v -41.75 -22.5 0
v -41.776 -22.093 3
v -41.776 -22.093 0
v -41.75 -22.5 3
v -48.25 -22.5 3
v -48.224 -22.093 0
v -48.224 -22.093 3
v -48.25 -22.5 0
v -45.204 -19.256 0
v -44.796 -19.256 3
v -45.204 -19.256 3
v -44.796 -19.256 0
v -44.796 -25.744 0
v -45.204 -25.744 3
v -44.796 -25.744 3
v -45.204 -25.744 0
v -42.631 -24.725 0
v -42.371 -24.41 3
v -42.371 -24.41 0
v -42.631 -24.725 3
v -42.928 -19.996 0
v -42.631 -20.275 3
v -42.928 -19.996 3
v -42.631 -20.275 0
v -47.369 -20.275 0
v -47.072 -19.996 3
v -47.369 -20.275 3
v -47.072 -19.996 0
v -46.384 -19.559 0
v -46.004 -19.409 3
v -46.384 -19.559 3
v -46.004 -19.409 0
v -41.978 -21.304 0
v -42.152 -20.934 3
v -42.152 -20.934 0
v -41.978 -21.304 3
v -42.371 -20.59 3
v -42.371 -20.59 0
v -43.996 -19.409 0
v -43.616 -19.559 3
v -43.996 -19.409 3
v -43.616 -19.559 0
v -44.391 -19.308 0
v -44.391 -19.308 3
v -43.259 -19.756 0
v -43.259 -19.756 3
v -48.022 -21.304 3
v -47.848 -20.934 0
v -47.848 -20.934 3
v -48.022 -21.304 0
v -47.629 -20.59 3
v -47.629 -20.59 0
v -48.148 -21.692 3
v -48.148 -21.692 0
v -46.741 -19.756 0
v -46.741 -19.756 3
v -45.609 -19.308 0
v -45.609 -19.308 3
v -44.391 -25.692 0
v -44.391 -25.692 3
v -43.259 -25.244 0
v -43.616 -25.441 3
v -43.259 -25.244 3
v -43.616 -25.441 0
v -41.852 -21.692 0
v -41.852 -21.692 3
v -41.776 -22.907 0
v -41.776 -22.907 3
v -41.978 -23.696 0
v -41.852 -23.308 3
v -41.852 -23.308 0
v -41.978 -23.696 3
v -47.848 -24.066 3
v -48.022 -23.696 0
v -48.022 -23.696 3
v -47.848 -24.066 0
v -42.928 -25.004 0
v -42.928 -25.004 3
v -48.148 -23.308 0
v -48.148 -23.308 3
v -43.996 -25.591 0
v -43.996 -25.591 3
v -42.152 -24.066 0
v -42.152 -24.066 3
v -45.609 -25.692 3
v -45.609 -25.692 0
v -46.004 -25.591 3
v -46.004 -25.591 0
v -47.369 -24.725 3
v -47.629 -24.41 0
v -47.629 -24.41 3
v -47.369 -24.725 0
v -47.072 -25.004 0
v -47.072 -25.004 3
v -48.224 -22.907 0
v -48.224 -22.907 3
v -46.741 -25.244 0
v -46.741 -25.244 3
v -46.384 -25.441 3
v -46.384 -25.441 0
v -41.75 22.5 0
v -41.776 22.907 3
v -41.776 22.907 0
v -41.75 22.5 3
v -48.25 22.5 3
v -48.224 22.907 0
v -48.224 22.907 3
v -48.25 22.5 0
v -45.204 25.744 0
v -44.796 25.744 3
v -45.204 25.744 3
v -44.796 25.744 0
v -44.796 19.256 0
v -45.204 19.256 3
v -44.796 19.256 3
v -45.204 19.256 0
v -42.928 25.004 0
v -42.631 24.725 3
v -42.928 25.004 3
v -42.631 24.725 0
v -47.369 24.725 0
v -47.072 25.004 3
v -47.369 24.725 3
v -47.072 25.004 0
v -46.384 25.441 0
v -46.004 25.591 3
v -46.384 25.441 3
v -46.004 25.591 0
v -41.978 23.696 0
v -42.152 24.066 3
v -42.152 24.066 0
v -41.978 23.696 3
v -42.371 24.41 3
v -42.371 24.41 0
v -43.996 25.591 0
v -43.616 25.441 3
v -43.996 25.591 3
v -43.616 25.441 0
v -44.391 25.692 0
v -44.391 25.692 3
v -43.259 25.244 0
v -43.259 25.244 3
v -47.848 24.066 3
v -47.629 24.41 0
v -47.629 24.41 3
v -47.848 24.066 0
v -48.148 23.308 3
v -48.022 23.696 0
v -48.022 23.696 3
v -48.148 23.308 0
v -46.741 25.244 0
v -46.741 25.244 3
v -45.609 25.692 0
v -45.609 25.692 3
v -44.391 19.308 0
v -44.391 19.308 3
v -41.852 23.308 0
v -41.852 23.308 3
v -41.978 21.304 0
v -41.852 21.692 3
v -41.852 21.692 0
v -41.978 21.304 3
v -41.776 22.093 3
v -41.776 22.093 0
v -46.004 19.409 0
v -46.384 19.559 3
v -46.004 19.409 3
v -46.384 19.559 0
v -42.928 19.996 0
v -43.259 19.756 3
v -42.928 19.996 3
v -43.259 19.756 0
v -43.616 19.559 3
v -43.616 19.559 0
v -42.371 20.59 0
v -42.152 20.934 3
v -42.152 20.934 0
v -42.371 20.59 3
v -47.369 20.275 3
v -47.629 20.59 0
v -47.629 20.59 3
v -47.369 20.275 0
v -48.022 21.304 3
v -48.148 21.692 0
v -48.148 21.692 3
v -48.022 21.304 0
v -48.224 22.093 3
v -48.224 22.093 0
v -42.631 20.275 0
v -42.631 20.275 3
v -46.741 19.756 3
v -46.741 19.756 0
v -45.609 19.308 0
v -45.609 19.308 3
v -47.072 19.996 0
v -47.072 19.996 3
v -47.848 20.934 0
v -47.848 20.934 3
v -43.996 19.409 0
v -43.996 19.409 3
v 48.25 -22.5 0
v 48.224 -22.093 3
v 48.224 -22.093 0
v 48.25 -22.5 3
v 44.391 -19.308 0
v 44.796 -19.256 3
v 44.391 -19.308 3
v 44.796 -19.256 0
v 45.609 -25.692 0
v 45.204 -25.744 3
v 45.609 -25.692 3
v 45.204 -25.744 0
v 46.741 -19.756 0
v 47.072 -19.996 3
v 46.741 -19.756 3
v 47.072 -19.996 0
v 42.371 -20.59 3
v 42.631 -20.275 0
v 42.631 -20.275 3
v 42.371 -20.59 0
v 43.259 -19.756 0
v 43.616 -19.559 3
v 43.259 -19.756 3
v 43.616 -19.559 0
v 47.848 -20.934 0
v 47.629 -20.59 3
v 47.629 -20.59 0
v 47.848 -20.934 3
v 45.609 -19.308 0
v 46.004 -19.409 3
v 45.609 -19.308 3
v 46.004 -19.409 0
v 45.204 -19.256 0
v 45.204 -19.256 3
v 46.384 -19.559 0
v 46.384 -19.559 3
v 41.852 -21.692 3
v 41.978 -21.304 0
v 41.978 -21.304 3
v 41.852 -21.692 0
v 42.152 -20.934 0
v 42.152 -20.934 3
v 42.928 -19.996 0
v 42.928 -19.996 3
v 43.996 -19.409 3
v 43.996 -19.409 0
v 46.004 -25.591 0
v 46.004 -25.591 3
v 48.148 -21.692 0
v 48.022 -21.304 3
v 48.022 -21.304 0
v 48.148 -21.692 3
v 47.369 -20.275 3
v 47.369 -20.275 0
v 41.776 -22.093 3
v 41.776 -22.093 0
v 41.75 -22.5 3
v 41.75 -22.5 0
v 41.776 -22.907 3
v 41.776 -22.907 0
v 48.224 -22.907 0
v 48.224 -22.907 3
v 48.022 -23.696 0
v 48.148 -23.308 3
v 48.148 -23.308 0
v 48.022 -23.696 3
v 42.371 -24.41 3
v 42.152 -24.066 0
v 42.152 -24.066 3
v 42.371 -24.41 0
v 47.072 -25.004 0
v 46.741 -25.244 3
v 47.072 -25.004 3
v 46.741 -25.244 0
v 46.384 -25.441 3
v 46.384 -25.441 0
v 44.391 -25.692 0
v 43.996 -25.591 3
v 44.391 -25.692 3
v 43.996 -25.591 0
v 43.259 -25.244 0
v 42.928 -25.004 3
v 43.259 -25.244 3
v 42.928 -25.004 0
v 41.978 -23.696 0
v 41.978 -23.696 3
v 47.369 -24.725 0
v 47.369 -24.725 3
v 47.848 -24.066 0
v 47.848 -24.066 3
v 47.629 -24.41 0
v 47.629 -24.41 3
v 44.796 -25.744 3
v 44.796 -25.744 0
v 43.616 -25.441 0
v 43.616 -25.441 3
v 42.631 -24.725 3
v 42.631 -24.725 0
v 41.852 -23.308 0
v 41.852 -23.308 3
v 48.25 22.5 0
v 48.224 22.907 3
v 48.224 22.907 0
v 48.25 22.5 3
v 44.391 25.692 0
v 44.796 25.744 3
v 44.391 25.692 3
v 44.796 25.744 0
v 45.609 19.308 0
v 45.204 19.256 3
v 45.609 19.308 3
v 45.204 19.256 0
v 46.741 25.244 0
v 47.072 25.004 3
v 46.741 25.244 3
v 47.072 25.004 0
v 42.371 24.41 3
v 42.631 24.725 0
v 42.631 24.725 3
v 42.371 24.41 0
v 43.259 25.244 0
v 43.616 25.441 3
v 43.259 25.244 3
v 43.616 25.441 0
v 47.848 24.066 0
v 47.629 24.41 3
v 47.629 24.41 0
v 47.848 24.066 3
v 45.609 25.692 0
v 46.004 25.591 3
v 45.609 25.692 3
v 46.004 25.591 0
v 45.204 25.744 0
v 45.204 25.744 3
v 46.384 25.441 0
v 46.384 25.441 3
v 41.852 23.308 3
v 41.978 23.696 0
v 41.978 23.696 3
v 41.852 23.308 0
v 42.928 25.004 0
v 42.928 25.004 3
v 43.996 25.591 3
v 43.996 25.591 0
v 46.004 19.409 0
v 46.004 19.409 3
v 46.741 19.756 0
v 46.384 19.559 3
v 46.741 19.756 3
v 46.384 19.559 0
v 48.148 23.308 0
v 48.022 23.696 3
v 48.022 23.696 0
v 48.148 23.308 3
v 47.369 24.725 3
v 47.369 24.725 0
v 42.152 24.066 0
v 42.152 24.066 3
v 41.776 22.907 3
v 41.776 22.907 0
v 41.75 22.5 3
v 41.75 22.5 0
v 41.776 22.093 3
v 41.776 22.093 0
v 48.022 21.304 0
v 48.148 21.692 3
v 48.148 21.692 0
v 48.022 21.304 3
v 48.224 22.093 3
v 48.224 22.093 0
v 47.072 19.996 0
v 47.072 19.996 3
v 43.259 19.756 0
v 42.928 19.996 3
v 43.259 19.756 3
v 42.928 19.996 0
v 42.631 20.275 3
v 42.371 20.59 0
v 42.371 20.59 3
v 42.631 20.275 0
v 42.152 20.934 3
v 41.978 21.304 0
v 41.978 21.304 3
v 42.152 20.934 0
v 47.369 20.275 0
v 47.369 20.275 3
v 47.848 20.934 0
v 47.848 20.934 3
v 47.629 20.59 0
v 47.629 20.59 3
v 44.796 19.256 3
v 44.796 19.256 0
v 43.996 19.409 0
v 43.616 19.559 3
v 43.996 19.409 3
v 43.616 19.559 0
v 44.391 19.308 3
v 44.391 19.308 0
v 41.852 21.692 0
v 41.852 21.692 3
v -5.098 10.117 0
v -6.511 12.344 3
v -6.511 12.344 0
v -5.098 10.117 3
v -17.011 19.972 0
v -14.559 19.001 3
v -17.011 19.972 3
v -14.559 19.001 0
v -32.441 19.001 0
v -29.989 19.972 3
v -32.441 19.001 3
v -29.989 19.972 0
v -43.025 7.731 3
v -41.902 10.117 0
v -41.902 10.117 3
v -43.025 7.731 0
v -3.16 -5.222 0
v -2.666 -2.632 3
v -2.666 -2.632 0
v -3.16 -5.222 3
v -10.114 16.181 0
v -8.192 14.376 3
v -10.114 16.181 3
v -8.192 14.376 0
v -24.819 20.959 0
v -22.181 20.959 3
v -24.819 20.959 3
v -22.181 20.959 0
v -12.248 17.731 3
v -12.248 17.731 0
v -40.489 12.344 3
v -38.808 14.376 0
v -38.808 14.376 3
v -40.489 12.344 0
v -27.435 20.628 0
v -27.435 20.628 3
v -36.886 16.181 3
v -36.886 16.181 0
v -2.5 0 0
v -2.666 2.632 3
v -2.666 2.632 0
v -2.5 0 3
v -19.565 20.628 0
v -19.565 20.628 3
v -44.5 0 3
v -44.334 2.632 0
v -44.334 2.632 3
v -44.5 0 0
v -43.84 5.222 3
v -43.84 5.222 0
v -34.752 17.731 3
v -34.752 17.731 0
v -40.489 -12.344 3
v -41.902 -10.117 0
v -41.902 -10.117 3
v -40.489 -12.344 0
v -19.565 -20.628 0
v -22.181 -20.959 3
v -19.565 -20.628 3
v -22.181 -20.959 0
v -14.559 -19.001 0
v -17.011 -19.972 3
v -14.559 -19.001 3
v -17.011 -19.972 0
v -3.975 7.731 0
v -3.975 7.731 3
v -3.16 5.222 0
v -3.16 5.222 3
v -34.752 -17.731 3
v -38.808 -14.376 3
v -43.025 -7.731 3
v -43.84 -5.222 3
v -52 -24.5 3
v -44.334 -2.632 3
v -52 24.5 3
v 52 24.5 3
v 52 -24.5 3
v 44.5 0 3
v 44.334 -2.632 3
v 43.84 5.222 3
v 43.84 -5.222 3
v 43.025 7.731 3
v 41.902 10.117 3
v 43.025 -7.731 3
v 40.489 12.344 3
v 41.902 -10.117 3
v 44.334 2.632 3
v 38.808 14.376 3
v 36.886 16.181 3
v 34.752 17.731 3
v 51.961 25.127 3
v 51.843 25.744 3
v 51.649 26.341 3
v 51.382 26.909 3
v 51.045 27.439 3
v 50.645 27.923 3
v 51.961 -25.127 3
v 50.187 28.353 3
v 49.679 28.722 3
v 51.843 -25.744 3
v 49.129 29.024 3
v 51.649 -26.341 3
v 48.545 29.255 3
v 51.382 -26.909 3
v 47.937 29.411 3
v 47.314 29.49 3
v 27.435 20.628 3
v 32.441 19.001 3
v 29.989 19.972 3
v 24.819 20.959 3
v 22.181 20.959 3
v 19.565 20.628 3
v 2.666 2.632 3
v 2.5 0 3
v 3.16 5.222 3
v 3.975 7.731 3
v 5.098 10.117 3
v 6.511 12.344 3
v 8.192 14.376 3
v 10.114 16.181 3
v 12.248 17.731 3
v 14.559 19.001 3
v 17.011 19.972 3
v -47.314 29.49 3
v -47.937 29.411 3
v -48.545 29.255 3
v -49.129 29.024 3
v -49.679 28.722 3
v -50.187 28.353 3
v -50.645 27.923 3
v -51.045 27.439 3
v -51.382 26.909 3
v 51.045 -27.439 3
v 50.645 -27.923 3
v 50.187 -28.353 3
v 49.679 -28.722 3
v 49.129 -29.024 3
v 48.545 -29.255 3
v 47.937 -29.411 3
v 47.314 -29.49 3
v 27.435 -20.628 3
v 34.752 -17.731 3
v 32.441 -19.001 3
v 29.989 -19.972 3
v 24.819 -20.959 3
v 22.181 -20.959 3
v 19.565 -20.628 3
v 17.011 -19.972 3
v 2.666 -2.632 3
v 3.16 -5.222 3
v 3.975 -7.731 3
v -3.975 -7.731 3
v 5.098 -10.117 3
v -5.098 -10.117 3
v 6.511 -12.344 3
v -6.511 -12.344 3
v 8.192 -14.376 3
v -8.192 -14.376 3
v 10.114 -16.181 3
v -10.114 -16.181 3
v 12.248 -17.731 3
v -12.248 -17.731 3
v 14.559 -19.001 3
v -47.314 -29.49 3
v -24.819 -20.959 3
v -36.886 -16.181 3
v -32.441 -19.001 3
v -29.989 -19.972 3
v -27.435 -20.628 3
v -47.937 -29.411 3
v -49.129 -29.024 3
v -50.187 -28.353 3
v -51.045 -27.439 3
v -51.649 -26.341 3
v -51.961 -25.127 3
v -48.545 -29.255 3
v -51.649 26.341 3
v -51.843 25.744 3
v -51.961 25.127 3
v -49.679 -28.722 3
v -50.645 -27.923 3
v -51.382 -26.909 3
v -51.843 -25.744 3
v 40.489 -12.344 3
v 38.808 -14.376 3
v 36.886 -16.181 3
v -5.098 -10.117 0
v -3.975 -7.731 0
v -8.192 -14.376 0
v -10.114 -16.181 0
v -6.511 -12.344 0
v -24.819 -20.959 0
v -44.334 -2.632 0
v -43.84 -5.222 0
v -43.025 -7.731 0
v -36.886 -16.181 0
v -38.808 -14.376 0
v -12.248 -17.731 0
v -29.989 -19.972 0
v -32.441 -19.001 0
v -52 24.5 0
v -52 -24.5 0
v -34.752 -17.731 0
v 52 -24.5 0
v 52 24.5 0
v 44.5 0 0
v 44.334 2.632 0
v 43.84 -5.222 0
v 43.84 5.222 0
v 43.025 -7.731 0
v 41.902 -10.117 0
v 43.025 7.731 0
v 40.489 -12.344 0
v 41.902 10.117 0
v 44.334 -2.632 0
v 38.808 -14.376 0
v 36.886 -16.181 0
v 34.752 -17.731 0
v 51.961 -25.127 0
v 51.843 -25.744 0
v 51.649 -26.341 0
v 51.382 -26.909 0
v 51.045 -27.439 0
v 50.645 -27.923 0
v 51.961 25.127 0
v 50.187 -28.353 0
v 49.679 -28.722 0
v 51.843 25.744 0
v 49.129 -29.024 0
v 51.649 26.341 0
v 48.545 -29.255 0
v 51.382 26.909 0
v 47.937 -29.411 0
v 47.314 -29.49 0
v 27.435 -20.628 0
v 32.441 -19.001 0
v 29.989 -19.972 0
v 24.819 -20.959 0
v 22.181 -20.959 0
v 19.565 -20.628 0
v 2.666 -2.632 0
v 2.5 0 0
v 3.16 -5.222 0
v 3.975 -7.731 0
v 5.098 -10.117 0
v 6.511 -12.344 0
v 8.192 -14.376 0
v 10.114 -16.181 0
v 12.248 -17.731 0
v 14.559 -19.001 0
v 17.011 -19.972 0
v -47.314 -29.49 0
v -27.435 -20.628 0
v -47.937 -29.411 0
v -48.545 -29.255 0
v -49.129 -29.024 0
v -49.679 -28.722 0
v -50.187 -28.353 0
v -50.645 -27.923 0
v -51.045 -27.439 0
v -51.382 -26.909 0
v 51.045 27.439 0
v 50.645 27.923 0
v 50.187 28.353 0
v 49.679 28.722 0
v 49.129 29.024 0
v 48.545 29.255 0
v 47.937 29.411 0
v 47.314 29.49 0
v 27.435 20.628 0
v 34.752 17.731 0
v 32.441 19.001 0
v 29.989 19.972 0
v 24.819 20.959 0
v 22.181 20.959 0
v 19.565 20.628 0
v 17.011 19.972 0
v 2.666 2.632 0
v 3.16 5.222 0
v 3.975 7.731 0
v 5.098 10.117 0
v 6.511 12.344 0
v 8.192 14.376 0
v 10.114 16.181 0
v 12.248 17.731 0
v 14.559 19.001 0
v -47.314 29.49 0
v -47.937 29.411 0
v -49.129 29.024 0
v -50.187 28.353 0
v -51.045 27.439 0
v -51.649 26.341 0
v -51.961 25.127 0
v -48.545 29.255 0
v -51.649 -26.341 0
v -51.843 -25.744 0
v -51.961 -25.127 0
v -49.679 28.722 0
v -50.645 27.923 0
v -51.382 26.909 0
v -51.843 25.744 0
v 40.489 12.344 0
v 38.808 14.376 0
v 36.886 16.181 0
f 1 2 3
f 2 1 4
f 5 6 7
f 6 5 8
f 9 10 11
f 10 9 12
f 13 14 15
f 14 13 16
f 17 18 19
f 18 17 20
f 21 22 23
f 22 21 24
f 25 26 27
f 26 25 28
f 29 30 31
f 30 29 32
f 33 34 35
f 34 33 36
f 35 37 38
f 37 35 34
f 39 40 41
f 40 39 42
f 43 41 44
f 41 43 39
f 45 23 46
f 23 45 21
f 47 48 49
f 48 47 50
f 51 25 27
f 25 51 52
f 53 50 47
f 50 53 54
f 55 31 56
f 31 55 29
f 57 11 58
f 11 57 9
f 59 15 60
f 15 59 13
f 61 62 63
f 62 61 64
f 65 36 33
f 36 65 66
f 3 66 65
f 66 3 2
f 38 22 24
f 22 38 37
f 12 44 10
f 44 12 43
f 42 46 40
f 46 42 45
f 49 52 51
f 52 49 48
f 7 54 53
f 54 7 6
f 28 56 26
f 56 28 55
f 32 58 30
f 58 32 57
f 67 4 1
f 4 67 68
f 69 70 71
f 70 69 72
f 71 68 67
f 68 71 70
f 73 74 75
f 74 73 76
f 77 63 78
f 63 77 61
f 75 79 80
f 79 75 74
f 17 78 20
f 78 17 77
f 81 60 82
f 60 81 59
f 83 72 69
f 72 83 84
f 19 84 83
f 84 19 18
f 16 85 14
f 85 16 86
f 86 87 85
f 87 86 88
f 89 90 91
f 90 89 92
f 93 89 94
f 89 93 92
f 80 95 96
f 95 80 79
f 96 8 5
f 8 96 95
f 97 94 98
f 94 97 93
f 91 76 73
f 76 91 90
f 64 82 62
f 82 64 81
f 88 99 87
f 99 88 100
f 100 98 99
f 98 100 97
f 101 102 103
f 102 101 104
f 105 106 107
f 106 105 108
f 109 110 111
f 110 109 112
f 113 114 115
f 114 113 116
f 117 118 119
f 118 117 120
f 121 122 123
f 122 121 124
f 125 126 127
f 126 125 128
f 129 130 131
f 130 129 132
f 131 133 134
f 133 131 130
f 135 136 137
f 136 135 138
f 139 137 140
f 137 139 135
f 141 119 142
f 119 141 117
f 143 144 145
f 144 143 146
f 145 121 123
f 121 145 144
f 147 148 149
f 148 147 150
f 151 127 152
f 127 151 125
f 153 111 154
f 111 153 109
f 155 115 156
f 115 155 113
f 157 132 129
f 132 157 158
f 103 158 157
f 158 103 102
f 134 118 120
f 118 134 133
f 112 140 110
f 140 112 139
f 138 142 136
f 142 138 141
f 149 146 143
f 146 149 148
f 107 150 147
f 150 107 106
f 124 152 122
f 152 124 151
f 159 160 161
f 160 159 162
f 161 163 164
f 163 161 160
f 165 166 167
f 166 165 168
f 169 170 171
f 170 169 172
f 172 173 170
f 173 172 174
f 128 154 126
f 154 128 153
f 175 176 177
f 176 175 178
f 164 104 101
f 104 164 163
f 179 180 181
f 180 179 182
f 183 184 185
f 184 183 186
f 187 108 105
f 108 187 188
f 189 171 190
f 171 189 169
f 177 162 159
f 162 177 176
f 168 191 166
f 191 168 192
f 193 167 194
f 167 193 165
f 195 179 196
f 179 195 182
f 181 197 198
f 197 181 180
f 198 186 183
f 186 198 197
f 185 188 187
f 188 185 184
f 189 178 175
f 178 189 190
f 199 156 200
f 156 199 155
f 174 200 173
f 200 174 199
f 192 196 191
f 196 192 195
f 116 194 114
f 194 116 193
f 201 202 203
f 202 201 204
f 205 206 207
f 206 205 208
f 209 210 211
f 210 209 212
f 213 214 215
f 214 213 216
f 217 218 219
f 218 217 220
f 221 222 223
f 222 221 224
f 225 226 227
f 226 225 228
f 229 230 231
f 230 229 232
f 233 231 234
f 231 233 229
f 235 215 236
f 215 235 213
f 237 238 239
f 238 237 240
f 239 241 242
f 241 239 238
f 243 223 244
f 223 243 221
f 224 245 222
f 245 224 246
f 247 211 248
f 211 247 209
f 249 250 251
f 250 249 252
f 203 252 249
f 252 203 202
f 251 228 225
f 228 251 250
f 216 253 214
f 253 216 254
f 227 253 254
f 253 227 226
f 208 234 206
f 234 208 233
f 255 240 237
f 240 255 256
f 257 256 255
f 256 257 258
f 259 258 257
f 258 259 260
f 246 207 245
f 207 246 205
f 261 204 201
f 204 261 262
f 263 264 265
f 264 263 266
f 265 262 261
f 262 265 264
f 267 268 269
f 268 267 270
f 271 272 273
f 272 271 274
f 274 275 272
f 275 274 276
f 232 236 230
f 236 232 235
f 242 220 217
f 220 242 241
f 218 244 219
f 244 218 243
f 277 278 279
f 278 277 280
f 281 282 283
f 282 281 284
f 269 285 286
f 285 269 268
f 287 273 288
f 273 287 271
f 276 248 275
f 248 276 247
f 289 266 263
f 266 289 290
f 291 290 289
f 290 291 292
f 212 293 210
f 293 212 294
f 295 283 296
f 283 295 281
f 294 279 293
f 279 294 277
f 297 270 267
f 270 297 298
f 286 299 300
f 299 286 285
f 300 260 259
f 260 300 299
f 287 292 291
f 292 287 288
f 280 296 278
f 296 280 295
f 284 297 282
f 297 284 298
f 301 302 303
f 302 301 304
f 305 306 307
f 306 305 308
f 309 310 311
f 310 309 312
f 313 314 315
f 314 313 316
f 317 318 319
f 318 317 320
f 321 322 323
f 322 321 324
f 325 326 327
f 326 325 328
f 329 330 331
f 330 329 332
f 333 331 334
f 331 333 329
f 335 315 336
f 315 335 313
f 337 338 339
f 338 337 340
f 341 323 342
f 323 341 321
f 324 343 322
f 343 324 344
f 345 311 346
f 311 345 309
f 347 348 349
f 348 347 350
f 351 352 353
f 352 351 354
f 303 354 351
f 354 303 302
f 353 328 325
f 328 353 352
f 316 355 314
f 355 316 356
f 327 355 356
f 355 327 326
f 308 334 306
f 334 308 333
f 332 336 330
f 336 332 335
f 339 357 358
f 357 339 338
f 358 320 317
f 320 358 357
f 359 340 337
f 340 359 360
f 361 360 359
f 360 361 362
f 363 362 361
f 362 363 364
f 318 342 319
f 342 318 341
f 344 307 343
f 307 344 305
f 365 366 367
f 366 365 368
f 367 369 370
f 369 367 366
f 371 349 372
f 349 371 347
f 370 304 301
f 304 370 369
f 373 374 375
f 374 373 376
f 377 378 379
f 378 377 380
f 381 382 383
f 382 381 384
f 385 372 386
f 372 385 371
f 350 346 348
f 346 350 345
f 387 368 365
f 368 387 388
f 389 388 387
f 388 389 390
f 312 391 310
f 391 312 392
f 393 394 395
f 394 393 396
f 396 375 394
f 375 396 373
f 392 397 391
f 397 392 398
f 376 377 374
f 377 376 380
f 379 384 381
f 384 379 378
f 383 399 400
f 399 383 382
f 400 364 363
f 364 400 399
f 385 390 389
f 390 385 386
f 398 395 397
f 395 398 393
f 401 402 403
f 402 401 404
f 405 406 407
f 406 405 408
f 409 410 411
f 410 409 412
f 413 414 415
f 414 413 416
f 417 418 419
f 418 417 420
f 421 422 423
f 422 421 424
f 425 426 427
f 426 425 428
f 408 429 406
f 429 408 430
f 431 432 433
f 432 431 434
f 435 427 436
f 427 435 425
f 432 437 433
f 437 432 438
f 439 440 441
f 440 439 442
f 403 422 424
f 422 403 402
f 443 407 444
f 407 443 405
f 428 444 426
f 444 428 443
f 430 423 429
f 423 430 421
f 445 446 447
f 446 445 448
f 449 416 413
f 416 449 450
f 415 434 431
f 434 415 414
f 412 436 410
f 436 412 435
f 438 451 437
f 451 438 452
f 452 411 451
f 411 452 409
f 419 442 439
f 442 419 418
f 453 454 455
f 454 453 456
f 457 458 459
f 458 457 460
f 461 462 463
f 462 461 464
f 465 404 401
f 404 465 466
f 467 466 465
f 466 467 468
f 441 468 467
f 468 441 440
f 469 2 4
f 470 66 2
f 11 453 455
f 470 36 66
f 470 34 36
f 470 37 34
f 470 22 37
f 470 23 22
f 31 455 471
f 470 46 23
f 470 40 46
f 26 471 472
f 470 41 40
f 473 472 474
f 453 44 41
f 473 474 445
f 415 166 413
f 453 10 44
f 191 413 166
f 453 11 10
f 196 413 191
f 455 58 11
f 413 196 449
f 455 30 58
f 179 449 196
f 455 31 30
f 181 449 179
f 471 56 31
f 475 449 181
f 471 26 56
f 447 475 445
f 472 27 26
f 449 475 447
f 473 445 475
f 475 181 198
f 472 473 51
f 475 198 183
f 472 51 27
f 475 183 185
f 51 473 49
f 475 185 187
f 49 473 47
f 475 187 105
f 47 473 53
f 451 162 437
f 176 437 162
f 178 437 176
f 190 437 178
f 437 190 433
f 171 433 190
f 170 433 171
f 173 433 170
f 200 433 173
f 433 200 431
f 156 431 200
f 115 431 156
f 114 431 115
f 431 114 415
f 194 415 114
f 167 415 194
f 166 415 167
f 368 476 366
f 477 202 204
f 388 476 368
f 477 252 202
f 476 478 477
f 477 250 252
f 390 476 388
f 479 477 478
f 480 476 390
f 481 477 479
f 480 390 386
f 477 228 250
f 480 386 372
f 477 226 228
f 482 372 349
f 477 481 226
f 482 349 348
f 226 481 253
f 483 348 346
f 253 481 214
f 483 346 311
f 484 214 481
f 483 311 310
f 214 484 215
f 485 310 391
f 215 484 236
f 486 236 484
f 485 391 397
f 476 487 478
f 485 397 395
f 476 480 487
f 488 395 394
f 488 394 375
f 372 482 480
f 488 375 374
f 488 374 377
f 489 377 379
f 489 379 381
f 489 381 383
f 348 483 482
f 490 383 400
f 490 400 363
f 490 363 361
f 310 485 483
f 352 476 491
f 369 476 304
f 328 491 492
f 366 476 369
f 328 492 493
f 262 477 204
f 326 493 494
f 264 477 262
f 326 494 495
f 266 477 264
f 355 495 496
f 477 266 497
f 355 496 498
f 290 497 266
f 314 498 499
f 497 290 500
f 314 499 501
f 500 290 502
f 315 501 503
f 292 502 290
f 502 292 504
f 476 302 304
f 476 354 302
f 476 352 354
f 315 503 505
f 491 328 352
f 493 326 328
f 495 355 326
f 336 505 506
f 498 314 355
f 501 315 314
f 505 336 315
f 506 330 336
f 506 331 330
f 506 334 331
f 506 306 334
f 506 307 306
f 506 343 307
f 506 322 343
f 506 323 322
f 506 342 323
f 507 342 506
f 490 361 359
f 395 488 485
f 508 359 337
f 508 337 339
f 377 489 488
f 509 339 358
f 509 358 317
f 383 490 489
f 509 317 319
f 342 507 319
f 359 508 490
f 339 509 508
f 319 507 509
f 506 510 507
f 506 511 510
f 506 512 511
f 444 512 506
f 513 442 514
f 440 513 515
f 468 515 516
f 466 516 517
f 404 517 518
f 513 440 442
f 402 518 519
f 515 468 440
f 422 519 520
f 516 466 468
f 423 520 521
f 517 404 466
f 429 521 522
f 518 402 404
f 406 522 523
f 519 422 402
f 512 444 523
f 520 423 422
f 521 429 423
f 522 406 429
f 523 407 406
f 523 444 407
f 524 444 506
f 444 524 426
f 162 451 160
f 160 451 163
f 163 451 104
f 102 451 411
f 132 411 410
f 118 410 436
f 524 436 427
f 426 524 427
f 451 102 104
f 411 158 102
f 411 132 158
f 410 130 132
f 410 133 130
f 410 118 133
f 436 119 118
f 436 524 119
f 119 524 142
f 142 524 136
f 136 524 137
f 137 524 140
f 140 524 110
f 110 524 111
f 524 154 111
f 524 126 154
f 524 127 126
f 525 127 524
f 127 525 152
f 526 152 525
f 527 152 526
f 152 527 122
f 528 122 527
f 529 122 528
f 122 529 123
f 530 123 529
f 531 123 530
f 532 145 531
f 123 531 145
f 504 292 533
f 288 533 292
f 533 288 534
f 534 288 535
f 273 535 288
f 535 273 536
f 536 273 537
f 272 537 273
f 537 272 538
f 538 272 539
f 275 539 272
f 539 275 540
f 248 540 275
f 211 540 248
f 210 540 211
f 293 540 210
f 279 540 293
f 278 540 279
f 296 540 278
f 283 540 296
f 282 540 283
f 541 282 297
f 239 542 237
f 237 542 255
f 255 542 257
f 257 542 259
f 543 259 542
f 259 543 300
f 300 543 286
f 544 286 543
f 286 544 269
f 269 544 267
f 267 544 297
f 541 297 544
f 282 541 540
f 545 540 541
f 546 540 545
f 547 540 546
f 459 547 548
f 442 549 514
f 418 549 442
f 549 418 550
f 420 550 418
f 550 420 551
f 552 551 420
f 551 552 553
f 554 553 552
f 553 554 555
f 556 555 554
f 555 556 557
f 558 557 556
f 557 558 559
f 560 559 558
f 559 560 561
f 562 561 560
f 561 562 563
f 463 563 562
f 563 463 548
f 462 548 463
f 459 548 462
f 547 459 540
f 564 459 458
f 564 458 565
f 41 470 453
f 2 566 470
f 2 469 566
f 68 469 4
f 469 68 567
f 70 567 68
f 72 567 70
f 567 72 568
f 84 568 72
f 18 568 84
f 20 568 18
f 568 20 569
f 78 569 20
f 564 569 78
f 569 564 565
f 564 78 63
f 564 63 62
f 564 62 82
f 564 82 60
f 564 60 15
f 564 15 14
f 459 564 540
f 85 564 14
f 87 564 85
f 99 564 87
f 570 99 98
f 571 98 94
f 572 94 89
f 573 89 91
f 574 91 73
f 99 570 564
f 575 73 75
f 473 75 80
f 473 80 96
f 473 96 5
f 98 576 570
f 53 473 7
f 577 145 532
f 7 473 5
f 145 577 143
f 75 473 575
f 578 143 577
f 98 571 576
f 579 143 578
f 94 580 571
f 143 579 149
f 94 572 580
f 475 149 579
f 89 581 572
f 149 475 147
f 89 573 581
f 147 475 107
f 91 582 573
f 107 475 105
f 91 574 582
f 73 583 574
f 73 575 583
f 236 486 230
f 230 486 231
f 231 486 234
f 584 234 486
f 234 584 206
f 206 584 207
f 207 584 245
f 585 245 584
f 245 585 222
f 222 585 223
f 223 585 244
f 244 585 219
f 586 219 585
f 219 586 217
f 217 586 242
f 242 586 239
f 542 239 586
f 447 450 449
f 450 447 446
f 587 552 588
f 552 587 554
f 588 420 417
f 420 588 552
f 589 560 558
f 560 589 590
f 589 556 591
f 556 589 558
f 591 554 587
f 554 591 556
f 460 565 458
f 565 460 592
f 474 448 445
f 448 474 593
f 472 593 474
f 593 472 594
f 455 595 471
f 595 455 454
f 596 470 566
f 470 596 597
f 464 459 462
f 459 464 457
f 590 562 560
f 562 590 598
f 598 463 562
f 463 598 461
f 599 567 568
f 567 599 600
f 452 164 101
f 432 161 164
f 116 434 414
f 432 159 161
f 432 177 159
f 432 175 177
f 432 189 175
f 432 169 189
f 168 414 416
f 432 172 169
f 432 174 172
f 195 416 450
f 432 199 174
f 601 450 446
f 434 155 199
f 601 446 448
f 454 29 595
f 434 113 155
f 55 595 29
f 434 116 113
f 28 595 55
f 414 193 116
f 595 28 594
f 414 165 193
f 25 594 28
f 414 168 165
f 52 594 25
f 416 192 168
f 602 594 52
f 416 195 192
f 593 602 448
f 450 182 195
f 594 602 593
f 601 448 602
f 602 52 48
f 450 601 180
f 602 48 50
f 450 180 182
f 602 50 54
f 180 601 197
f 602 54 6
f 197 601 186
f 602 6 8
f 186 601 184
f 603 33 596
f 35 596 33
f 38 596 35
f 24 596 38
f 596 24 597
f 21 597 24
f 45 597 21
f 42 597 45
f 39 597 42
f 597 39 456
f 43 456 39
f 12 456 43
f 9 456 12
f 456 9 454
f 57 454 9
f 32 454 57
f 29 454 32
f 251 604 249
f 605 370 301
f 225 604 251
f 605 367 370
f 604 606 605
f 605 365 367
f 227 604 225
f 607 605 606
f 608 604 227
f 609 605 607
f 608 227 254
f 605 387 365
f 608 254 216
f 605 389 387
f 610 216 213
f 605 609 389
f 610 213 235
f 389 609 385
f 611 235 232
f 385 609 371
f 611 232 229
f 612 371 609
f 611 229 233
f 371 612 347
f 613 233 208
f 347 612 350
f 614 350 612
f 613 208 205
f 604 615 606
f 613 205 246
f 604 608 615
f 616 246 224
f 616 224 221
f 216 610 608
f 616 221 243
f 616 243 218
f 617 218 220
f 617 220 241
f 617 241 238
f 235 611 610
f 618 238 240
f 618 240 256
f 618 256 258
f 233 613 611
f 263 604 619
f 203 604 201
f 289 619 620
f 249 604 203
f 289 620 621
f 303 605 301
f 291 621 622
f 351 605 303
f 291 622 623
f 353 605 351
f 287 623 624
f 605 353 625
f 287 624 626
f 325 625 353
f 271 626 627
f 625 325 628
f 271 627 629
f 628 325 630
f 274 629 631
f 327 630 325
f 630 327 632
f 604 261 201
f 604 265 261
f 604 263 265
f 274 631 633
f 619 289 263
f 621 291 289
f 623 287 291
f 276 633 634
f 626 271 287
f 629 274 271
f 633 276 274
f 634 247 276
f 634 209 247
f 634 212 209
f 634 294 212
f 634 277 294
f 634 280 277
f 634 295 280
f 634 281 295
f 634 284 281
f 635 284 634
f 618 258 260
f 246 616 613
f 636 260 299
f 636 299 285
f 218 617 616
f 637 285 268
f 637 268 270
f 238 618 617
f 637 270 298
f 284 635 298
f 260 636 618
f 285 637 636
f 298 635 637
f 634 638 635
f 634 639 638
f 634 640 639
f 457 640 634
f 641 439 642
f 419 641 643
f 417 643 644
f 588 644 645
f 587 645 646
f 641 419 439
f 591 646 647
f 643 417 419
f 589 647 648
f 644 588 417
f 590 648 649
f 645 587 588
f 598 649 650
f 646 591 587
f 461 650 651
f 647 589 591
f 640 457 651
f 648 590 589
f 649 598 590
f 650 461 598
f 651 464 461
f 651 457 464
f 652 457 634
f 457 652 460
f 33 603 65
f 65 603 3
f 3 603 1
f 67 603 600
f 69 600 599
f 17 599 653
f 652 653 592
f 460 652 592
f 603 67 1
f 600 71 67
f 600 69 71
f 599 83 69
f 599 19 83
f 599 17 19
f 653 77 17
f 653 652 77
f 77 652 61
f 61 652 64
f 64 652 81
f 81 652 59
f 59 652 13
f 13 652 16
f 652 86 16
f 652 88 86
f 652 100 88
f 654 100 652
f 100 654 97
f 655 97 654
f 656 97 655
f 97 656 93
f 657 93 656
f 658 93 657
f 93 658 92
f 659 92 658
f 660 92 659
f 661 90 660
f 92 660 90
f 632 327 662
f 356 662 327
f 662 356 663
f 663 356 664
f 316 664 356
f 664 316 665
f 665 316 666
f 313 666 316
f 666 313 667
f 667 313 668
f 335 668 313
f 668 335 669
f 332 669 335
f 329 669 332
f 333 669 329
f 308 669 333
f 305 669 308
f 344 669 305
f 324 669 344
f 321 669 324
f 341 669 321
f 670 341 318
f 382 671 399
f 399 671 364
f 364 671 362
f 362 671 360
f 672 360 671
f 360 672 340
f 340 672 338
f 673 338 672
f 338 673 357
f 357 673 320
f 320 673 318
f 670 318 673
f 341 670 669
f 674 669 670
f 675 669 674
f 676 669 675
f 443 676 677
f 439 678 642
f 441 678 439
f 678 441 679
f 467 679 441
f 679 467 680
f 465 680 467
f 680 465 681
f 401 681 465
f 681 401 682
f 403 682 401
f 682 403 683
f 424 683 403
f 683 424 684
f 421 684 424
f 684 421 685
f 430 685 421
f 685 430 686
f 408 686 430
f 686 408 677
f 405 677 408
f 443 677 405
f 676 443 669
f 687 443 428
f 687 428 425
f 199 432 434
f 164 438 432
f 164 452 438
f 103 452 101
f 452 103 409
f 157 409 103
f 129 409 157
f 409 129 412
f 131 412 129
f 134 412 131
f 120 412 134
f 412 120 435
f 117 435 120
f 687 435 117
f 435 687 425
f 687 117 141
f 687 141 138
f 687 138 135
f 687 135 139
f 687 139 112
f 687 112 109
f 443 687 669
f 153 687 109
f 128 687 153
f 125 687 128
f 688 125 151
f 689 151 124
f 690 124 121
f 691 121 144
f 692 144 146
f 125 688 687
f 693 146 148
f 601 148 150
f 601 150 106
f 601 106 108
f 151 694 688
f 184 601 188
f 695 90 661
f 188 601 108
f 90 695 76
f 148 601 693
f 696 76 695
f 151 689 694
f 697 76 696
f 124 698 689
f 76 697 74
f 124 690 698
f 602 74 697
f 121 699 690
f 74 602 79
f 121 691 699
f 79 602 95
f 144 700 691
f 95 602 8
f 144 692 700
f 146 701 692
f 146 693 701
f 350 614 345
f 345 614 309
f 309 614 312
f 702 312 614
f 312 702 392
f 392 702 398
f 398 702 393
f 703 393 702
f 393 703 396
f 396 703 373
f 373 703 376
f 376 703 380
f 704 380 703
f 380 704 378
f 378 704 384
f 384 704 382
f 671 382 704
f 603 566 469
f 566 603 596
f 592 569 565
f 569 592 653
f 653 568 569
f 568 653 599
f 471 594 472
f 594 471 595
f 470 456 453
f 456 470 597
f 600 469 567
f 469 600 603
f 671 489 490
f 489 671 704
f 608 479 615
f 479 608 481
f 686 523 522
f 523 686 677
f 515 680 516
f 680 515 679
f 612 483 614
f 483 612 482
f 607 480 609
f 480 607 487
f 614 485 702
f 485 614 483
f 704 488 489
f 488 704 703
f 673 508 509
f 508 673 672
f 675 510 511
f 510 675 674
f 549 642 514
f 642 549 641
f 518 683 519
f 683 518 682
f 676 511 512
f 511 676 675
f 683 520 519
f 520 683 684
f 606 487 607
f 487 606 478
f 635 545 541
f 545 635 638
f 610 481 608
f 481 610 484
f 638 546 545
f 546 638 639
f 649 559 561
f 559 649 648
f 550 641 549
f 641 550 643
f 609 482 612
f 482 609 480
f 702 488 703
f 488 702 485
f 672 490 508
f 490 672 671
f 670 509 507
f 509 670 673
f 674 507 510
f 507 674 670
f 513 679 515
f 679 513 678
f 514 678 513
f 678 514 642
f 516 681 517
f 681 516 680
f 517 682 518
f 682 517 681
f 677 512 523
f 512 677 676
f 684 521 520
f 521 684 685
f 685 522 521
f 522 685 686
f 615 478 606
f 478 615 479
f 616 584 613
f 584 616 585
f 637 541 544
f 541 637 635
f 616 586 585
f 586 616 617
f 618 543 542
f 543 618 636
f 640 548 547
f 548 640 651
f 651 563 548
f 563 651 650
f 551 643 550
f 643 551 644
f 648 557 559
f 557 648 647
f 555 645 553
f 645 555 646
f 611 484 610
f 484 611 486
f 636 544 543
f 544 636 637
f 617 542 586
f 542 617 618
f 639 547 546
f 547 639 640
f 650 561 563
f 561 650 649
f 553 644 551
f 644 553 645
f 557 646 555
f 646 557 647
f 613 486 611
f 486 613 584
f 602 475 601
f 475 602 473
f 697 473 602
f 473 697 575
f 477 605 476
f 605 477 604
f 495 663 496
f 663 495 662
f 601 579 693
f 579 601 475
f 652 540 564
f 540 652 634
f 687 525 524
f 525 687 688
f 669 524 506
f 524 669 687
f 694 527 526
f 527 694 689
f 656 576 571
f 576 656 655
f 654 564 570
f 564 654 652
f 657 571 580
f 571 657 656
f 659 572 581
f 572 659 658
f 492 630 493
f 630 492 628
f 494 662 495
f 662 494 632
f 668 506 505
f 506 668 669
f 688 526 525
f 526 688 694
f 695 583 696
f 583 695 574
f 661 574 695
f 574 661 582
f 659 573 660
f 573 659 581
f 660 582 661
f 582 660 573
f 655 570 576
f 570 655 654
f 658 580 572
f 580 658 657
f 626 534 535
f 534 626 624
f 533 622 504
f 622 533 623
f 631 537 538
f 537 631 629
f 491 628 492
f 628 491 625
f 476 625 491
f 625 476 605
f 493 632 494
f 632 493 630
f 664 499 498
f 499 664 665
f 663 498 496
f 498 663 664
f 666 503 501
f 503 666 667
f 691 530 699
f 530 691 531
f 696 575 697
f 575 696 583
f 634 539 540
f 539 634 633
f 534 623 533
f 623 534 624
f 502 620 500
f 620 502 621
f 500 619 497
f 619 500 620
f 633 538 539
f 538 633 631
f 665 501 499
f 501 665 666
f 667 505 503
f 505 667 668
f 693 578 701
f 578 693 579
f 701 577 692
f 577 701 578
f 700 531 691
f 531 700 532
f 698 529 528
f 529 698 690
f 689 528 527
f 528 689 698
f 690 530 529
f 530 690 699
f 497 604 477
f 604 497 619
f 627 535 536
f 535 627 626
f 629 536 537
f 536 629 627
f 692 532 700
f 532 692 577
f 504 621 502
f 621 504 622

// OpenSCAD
$fn = 50;


difference() {
	union() {
		hull() {
			translate(v = [-47.0000000000, 24.5000000000, 0]) {
				cylinder(h = 3, r = 5);
			}
			translate(v = [47.0000000000, 24.5000000000, 0]) {
				cylinder(h = 3, r = 5);
			}
			translate(v = [-47.0000000000, -24.5000000000, 0]) {
				cylinder(h = 3, r = 5);
			}
			translate(v = [47.0000000000, -24.5000000000, 0]) {
				cylinder(h = 3, r = 5);
			}
		}
	}
	union() {
		#translate(v = [-45.0000000000, -22.5000000000, -100.0000000000]) {
			cylinder(h = 200, r = 3.2500000000);
		}
		#translate(v = [-45.0000000000, 22.5000000000, -100.0000000000]) {
			cylinder(h = 200, r = 3.2500000000);
		}
		#translate(v = [45.0000000000, -22.5000000000, -100.0000000000]) {
			cylinder(h = 200, r = 3.2500000000);
		}
		#translate(v = [45.0000000000, 22.5000000000, -100.0000000000]) {
			cylinder(h = 200, r = 3.2500000000);
		}
		#translate(v = [-23.5000000000, 0, 0]) {
			cylinder(h = 3, r = 21.0000000000);
		}
		#translate(v = [23.5000000000, 0, 0]) {
			cylinder(h = 3, r = 21.0000000000);
		}
	}
}
